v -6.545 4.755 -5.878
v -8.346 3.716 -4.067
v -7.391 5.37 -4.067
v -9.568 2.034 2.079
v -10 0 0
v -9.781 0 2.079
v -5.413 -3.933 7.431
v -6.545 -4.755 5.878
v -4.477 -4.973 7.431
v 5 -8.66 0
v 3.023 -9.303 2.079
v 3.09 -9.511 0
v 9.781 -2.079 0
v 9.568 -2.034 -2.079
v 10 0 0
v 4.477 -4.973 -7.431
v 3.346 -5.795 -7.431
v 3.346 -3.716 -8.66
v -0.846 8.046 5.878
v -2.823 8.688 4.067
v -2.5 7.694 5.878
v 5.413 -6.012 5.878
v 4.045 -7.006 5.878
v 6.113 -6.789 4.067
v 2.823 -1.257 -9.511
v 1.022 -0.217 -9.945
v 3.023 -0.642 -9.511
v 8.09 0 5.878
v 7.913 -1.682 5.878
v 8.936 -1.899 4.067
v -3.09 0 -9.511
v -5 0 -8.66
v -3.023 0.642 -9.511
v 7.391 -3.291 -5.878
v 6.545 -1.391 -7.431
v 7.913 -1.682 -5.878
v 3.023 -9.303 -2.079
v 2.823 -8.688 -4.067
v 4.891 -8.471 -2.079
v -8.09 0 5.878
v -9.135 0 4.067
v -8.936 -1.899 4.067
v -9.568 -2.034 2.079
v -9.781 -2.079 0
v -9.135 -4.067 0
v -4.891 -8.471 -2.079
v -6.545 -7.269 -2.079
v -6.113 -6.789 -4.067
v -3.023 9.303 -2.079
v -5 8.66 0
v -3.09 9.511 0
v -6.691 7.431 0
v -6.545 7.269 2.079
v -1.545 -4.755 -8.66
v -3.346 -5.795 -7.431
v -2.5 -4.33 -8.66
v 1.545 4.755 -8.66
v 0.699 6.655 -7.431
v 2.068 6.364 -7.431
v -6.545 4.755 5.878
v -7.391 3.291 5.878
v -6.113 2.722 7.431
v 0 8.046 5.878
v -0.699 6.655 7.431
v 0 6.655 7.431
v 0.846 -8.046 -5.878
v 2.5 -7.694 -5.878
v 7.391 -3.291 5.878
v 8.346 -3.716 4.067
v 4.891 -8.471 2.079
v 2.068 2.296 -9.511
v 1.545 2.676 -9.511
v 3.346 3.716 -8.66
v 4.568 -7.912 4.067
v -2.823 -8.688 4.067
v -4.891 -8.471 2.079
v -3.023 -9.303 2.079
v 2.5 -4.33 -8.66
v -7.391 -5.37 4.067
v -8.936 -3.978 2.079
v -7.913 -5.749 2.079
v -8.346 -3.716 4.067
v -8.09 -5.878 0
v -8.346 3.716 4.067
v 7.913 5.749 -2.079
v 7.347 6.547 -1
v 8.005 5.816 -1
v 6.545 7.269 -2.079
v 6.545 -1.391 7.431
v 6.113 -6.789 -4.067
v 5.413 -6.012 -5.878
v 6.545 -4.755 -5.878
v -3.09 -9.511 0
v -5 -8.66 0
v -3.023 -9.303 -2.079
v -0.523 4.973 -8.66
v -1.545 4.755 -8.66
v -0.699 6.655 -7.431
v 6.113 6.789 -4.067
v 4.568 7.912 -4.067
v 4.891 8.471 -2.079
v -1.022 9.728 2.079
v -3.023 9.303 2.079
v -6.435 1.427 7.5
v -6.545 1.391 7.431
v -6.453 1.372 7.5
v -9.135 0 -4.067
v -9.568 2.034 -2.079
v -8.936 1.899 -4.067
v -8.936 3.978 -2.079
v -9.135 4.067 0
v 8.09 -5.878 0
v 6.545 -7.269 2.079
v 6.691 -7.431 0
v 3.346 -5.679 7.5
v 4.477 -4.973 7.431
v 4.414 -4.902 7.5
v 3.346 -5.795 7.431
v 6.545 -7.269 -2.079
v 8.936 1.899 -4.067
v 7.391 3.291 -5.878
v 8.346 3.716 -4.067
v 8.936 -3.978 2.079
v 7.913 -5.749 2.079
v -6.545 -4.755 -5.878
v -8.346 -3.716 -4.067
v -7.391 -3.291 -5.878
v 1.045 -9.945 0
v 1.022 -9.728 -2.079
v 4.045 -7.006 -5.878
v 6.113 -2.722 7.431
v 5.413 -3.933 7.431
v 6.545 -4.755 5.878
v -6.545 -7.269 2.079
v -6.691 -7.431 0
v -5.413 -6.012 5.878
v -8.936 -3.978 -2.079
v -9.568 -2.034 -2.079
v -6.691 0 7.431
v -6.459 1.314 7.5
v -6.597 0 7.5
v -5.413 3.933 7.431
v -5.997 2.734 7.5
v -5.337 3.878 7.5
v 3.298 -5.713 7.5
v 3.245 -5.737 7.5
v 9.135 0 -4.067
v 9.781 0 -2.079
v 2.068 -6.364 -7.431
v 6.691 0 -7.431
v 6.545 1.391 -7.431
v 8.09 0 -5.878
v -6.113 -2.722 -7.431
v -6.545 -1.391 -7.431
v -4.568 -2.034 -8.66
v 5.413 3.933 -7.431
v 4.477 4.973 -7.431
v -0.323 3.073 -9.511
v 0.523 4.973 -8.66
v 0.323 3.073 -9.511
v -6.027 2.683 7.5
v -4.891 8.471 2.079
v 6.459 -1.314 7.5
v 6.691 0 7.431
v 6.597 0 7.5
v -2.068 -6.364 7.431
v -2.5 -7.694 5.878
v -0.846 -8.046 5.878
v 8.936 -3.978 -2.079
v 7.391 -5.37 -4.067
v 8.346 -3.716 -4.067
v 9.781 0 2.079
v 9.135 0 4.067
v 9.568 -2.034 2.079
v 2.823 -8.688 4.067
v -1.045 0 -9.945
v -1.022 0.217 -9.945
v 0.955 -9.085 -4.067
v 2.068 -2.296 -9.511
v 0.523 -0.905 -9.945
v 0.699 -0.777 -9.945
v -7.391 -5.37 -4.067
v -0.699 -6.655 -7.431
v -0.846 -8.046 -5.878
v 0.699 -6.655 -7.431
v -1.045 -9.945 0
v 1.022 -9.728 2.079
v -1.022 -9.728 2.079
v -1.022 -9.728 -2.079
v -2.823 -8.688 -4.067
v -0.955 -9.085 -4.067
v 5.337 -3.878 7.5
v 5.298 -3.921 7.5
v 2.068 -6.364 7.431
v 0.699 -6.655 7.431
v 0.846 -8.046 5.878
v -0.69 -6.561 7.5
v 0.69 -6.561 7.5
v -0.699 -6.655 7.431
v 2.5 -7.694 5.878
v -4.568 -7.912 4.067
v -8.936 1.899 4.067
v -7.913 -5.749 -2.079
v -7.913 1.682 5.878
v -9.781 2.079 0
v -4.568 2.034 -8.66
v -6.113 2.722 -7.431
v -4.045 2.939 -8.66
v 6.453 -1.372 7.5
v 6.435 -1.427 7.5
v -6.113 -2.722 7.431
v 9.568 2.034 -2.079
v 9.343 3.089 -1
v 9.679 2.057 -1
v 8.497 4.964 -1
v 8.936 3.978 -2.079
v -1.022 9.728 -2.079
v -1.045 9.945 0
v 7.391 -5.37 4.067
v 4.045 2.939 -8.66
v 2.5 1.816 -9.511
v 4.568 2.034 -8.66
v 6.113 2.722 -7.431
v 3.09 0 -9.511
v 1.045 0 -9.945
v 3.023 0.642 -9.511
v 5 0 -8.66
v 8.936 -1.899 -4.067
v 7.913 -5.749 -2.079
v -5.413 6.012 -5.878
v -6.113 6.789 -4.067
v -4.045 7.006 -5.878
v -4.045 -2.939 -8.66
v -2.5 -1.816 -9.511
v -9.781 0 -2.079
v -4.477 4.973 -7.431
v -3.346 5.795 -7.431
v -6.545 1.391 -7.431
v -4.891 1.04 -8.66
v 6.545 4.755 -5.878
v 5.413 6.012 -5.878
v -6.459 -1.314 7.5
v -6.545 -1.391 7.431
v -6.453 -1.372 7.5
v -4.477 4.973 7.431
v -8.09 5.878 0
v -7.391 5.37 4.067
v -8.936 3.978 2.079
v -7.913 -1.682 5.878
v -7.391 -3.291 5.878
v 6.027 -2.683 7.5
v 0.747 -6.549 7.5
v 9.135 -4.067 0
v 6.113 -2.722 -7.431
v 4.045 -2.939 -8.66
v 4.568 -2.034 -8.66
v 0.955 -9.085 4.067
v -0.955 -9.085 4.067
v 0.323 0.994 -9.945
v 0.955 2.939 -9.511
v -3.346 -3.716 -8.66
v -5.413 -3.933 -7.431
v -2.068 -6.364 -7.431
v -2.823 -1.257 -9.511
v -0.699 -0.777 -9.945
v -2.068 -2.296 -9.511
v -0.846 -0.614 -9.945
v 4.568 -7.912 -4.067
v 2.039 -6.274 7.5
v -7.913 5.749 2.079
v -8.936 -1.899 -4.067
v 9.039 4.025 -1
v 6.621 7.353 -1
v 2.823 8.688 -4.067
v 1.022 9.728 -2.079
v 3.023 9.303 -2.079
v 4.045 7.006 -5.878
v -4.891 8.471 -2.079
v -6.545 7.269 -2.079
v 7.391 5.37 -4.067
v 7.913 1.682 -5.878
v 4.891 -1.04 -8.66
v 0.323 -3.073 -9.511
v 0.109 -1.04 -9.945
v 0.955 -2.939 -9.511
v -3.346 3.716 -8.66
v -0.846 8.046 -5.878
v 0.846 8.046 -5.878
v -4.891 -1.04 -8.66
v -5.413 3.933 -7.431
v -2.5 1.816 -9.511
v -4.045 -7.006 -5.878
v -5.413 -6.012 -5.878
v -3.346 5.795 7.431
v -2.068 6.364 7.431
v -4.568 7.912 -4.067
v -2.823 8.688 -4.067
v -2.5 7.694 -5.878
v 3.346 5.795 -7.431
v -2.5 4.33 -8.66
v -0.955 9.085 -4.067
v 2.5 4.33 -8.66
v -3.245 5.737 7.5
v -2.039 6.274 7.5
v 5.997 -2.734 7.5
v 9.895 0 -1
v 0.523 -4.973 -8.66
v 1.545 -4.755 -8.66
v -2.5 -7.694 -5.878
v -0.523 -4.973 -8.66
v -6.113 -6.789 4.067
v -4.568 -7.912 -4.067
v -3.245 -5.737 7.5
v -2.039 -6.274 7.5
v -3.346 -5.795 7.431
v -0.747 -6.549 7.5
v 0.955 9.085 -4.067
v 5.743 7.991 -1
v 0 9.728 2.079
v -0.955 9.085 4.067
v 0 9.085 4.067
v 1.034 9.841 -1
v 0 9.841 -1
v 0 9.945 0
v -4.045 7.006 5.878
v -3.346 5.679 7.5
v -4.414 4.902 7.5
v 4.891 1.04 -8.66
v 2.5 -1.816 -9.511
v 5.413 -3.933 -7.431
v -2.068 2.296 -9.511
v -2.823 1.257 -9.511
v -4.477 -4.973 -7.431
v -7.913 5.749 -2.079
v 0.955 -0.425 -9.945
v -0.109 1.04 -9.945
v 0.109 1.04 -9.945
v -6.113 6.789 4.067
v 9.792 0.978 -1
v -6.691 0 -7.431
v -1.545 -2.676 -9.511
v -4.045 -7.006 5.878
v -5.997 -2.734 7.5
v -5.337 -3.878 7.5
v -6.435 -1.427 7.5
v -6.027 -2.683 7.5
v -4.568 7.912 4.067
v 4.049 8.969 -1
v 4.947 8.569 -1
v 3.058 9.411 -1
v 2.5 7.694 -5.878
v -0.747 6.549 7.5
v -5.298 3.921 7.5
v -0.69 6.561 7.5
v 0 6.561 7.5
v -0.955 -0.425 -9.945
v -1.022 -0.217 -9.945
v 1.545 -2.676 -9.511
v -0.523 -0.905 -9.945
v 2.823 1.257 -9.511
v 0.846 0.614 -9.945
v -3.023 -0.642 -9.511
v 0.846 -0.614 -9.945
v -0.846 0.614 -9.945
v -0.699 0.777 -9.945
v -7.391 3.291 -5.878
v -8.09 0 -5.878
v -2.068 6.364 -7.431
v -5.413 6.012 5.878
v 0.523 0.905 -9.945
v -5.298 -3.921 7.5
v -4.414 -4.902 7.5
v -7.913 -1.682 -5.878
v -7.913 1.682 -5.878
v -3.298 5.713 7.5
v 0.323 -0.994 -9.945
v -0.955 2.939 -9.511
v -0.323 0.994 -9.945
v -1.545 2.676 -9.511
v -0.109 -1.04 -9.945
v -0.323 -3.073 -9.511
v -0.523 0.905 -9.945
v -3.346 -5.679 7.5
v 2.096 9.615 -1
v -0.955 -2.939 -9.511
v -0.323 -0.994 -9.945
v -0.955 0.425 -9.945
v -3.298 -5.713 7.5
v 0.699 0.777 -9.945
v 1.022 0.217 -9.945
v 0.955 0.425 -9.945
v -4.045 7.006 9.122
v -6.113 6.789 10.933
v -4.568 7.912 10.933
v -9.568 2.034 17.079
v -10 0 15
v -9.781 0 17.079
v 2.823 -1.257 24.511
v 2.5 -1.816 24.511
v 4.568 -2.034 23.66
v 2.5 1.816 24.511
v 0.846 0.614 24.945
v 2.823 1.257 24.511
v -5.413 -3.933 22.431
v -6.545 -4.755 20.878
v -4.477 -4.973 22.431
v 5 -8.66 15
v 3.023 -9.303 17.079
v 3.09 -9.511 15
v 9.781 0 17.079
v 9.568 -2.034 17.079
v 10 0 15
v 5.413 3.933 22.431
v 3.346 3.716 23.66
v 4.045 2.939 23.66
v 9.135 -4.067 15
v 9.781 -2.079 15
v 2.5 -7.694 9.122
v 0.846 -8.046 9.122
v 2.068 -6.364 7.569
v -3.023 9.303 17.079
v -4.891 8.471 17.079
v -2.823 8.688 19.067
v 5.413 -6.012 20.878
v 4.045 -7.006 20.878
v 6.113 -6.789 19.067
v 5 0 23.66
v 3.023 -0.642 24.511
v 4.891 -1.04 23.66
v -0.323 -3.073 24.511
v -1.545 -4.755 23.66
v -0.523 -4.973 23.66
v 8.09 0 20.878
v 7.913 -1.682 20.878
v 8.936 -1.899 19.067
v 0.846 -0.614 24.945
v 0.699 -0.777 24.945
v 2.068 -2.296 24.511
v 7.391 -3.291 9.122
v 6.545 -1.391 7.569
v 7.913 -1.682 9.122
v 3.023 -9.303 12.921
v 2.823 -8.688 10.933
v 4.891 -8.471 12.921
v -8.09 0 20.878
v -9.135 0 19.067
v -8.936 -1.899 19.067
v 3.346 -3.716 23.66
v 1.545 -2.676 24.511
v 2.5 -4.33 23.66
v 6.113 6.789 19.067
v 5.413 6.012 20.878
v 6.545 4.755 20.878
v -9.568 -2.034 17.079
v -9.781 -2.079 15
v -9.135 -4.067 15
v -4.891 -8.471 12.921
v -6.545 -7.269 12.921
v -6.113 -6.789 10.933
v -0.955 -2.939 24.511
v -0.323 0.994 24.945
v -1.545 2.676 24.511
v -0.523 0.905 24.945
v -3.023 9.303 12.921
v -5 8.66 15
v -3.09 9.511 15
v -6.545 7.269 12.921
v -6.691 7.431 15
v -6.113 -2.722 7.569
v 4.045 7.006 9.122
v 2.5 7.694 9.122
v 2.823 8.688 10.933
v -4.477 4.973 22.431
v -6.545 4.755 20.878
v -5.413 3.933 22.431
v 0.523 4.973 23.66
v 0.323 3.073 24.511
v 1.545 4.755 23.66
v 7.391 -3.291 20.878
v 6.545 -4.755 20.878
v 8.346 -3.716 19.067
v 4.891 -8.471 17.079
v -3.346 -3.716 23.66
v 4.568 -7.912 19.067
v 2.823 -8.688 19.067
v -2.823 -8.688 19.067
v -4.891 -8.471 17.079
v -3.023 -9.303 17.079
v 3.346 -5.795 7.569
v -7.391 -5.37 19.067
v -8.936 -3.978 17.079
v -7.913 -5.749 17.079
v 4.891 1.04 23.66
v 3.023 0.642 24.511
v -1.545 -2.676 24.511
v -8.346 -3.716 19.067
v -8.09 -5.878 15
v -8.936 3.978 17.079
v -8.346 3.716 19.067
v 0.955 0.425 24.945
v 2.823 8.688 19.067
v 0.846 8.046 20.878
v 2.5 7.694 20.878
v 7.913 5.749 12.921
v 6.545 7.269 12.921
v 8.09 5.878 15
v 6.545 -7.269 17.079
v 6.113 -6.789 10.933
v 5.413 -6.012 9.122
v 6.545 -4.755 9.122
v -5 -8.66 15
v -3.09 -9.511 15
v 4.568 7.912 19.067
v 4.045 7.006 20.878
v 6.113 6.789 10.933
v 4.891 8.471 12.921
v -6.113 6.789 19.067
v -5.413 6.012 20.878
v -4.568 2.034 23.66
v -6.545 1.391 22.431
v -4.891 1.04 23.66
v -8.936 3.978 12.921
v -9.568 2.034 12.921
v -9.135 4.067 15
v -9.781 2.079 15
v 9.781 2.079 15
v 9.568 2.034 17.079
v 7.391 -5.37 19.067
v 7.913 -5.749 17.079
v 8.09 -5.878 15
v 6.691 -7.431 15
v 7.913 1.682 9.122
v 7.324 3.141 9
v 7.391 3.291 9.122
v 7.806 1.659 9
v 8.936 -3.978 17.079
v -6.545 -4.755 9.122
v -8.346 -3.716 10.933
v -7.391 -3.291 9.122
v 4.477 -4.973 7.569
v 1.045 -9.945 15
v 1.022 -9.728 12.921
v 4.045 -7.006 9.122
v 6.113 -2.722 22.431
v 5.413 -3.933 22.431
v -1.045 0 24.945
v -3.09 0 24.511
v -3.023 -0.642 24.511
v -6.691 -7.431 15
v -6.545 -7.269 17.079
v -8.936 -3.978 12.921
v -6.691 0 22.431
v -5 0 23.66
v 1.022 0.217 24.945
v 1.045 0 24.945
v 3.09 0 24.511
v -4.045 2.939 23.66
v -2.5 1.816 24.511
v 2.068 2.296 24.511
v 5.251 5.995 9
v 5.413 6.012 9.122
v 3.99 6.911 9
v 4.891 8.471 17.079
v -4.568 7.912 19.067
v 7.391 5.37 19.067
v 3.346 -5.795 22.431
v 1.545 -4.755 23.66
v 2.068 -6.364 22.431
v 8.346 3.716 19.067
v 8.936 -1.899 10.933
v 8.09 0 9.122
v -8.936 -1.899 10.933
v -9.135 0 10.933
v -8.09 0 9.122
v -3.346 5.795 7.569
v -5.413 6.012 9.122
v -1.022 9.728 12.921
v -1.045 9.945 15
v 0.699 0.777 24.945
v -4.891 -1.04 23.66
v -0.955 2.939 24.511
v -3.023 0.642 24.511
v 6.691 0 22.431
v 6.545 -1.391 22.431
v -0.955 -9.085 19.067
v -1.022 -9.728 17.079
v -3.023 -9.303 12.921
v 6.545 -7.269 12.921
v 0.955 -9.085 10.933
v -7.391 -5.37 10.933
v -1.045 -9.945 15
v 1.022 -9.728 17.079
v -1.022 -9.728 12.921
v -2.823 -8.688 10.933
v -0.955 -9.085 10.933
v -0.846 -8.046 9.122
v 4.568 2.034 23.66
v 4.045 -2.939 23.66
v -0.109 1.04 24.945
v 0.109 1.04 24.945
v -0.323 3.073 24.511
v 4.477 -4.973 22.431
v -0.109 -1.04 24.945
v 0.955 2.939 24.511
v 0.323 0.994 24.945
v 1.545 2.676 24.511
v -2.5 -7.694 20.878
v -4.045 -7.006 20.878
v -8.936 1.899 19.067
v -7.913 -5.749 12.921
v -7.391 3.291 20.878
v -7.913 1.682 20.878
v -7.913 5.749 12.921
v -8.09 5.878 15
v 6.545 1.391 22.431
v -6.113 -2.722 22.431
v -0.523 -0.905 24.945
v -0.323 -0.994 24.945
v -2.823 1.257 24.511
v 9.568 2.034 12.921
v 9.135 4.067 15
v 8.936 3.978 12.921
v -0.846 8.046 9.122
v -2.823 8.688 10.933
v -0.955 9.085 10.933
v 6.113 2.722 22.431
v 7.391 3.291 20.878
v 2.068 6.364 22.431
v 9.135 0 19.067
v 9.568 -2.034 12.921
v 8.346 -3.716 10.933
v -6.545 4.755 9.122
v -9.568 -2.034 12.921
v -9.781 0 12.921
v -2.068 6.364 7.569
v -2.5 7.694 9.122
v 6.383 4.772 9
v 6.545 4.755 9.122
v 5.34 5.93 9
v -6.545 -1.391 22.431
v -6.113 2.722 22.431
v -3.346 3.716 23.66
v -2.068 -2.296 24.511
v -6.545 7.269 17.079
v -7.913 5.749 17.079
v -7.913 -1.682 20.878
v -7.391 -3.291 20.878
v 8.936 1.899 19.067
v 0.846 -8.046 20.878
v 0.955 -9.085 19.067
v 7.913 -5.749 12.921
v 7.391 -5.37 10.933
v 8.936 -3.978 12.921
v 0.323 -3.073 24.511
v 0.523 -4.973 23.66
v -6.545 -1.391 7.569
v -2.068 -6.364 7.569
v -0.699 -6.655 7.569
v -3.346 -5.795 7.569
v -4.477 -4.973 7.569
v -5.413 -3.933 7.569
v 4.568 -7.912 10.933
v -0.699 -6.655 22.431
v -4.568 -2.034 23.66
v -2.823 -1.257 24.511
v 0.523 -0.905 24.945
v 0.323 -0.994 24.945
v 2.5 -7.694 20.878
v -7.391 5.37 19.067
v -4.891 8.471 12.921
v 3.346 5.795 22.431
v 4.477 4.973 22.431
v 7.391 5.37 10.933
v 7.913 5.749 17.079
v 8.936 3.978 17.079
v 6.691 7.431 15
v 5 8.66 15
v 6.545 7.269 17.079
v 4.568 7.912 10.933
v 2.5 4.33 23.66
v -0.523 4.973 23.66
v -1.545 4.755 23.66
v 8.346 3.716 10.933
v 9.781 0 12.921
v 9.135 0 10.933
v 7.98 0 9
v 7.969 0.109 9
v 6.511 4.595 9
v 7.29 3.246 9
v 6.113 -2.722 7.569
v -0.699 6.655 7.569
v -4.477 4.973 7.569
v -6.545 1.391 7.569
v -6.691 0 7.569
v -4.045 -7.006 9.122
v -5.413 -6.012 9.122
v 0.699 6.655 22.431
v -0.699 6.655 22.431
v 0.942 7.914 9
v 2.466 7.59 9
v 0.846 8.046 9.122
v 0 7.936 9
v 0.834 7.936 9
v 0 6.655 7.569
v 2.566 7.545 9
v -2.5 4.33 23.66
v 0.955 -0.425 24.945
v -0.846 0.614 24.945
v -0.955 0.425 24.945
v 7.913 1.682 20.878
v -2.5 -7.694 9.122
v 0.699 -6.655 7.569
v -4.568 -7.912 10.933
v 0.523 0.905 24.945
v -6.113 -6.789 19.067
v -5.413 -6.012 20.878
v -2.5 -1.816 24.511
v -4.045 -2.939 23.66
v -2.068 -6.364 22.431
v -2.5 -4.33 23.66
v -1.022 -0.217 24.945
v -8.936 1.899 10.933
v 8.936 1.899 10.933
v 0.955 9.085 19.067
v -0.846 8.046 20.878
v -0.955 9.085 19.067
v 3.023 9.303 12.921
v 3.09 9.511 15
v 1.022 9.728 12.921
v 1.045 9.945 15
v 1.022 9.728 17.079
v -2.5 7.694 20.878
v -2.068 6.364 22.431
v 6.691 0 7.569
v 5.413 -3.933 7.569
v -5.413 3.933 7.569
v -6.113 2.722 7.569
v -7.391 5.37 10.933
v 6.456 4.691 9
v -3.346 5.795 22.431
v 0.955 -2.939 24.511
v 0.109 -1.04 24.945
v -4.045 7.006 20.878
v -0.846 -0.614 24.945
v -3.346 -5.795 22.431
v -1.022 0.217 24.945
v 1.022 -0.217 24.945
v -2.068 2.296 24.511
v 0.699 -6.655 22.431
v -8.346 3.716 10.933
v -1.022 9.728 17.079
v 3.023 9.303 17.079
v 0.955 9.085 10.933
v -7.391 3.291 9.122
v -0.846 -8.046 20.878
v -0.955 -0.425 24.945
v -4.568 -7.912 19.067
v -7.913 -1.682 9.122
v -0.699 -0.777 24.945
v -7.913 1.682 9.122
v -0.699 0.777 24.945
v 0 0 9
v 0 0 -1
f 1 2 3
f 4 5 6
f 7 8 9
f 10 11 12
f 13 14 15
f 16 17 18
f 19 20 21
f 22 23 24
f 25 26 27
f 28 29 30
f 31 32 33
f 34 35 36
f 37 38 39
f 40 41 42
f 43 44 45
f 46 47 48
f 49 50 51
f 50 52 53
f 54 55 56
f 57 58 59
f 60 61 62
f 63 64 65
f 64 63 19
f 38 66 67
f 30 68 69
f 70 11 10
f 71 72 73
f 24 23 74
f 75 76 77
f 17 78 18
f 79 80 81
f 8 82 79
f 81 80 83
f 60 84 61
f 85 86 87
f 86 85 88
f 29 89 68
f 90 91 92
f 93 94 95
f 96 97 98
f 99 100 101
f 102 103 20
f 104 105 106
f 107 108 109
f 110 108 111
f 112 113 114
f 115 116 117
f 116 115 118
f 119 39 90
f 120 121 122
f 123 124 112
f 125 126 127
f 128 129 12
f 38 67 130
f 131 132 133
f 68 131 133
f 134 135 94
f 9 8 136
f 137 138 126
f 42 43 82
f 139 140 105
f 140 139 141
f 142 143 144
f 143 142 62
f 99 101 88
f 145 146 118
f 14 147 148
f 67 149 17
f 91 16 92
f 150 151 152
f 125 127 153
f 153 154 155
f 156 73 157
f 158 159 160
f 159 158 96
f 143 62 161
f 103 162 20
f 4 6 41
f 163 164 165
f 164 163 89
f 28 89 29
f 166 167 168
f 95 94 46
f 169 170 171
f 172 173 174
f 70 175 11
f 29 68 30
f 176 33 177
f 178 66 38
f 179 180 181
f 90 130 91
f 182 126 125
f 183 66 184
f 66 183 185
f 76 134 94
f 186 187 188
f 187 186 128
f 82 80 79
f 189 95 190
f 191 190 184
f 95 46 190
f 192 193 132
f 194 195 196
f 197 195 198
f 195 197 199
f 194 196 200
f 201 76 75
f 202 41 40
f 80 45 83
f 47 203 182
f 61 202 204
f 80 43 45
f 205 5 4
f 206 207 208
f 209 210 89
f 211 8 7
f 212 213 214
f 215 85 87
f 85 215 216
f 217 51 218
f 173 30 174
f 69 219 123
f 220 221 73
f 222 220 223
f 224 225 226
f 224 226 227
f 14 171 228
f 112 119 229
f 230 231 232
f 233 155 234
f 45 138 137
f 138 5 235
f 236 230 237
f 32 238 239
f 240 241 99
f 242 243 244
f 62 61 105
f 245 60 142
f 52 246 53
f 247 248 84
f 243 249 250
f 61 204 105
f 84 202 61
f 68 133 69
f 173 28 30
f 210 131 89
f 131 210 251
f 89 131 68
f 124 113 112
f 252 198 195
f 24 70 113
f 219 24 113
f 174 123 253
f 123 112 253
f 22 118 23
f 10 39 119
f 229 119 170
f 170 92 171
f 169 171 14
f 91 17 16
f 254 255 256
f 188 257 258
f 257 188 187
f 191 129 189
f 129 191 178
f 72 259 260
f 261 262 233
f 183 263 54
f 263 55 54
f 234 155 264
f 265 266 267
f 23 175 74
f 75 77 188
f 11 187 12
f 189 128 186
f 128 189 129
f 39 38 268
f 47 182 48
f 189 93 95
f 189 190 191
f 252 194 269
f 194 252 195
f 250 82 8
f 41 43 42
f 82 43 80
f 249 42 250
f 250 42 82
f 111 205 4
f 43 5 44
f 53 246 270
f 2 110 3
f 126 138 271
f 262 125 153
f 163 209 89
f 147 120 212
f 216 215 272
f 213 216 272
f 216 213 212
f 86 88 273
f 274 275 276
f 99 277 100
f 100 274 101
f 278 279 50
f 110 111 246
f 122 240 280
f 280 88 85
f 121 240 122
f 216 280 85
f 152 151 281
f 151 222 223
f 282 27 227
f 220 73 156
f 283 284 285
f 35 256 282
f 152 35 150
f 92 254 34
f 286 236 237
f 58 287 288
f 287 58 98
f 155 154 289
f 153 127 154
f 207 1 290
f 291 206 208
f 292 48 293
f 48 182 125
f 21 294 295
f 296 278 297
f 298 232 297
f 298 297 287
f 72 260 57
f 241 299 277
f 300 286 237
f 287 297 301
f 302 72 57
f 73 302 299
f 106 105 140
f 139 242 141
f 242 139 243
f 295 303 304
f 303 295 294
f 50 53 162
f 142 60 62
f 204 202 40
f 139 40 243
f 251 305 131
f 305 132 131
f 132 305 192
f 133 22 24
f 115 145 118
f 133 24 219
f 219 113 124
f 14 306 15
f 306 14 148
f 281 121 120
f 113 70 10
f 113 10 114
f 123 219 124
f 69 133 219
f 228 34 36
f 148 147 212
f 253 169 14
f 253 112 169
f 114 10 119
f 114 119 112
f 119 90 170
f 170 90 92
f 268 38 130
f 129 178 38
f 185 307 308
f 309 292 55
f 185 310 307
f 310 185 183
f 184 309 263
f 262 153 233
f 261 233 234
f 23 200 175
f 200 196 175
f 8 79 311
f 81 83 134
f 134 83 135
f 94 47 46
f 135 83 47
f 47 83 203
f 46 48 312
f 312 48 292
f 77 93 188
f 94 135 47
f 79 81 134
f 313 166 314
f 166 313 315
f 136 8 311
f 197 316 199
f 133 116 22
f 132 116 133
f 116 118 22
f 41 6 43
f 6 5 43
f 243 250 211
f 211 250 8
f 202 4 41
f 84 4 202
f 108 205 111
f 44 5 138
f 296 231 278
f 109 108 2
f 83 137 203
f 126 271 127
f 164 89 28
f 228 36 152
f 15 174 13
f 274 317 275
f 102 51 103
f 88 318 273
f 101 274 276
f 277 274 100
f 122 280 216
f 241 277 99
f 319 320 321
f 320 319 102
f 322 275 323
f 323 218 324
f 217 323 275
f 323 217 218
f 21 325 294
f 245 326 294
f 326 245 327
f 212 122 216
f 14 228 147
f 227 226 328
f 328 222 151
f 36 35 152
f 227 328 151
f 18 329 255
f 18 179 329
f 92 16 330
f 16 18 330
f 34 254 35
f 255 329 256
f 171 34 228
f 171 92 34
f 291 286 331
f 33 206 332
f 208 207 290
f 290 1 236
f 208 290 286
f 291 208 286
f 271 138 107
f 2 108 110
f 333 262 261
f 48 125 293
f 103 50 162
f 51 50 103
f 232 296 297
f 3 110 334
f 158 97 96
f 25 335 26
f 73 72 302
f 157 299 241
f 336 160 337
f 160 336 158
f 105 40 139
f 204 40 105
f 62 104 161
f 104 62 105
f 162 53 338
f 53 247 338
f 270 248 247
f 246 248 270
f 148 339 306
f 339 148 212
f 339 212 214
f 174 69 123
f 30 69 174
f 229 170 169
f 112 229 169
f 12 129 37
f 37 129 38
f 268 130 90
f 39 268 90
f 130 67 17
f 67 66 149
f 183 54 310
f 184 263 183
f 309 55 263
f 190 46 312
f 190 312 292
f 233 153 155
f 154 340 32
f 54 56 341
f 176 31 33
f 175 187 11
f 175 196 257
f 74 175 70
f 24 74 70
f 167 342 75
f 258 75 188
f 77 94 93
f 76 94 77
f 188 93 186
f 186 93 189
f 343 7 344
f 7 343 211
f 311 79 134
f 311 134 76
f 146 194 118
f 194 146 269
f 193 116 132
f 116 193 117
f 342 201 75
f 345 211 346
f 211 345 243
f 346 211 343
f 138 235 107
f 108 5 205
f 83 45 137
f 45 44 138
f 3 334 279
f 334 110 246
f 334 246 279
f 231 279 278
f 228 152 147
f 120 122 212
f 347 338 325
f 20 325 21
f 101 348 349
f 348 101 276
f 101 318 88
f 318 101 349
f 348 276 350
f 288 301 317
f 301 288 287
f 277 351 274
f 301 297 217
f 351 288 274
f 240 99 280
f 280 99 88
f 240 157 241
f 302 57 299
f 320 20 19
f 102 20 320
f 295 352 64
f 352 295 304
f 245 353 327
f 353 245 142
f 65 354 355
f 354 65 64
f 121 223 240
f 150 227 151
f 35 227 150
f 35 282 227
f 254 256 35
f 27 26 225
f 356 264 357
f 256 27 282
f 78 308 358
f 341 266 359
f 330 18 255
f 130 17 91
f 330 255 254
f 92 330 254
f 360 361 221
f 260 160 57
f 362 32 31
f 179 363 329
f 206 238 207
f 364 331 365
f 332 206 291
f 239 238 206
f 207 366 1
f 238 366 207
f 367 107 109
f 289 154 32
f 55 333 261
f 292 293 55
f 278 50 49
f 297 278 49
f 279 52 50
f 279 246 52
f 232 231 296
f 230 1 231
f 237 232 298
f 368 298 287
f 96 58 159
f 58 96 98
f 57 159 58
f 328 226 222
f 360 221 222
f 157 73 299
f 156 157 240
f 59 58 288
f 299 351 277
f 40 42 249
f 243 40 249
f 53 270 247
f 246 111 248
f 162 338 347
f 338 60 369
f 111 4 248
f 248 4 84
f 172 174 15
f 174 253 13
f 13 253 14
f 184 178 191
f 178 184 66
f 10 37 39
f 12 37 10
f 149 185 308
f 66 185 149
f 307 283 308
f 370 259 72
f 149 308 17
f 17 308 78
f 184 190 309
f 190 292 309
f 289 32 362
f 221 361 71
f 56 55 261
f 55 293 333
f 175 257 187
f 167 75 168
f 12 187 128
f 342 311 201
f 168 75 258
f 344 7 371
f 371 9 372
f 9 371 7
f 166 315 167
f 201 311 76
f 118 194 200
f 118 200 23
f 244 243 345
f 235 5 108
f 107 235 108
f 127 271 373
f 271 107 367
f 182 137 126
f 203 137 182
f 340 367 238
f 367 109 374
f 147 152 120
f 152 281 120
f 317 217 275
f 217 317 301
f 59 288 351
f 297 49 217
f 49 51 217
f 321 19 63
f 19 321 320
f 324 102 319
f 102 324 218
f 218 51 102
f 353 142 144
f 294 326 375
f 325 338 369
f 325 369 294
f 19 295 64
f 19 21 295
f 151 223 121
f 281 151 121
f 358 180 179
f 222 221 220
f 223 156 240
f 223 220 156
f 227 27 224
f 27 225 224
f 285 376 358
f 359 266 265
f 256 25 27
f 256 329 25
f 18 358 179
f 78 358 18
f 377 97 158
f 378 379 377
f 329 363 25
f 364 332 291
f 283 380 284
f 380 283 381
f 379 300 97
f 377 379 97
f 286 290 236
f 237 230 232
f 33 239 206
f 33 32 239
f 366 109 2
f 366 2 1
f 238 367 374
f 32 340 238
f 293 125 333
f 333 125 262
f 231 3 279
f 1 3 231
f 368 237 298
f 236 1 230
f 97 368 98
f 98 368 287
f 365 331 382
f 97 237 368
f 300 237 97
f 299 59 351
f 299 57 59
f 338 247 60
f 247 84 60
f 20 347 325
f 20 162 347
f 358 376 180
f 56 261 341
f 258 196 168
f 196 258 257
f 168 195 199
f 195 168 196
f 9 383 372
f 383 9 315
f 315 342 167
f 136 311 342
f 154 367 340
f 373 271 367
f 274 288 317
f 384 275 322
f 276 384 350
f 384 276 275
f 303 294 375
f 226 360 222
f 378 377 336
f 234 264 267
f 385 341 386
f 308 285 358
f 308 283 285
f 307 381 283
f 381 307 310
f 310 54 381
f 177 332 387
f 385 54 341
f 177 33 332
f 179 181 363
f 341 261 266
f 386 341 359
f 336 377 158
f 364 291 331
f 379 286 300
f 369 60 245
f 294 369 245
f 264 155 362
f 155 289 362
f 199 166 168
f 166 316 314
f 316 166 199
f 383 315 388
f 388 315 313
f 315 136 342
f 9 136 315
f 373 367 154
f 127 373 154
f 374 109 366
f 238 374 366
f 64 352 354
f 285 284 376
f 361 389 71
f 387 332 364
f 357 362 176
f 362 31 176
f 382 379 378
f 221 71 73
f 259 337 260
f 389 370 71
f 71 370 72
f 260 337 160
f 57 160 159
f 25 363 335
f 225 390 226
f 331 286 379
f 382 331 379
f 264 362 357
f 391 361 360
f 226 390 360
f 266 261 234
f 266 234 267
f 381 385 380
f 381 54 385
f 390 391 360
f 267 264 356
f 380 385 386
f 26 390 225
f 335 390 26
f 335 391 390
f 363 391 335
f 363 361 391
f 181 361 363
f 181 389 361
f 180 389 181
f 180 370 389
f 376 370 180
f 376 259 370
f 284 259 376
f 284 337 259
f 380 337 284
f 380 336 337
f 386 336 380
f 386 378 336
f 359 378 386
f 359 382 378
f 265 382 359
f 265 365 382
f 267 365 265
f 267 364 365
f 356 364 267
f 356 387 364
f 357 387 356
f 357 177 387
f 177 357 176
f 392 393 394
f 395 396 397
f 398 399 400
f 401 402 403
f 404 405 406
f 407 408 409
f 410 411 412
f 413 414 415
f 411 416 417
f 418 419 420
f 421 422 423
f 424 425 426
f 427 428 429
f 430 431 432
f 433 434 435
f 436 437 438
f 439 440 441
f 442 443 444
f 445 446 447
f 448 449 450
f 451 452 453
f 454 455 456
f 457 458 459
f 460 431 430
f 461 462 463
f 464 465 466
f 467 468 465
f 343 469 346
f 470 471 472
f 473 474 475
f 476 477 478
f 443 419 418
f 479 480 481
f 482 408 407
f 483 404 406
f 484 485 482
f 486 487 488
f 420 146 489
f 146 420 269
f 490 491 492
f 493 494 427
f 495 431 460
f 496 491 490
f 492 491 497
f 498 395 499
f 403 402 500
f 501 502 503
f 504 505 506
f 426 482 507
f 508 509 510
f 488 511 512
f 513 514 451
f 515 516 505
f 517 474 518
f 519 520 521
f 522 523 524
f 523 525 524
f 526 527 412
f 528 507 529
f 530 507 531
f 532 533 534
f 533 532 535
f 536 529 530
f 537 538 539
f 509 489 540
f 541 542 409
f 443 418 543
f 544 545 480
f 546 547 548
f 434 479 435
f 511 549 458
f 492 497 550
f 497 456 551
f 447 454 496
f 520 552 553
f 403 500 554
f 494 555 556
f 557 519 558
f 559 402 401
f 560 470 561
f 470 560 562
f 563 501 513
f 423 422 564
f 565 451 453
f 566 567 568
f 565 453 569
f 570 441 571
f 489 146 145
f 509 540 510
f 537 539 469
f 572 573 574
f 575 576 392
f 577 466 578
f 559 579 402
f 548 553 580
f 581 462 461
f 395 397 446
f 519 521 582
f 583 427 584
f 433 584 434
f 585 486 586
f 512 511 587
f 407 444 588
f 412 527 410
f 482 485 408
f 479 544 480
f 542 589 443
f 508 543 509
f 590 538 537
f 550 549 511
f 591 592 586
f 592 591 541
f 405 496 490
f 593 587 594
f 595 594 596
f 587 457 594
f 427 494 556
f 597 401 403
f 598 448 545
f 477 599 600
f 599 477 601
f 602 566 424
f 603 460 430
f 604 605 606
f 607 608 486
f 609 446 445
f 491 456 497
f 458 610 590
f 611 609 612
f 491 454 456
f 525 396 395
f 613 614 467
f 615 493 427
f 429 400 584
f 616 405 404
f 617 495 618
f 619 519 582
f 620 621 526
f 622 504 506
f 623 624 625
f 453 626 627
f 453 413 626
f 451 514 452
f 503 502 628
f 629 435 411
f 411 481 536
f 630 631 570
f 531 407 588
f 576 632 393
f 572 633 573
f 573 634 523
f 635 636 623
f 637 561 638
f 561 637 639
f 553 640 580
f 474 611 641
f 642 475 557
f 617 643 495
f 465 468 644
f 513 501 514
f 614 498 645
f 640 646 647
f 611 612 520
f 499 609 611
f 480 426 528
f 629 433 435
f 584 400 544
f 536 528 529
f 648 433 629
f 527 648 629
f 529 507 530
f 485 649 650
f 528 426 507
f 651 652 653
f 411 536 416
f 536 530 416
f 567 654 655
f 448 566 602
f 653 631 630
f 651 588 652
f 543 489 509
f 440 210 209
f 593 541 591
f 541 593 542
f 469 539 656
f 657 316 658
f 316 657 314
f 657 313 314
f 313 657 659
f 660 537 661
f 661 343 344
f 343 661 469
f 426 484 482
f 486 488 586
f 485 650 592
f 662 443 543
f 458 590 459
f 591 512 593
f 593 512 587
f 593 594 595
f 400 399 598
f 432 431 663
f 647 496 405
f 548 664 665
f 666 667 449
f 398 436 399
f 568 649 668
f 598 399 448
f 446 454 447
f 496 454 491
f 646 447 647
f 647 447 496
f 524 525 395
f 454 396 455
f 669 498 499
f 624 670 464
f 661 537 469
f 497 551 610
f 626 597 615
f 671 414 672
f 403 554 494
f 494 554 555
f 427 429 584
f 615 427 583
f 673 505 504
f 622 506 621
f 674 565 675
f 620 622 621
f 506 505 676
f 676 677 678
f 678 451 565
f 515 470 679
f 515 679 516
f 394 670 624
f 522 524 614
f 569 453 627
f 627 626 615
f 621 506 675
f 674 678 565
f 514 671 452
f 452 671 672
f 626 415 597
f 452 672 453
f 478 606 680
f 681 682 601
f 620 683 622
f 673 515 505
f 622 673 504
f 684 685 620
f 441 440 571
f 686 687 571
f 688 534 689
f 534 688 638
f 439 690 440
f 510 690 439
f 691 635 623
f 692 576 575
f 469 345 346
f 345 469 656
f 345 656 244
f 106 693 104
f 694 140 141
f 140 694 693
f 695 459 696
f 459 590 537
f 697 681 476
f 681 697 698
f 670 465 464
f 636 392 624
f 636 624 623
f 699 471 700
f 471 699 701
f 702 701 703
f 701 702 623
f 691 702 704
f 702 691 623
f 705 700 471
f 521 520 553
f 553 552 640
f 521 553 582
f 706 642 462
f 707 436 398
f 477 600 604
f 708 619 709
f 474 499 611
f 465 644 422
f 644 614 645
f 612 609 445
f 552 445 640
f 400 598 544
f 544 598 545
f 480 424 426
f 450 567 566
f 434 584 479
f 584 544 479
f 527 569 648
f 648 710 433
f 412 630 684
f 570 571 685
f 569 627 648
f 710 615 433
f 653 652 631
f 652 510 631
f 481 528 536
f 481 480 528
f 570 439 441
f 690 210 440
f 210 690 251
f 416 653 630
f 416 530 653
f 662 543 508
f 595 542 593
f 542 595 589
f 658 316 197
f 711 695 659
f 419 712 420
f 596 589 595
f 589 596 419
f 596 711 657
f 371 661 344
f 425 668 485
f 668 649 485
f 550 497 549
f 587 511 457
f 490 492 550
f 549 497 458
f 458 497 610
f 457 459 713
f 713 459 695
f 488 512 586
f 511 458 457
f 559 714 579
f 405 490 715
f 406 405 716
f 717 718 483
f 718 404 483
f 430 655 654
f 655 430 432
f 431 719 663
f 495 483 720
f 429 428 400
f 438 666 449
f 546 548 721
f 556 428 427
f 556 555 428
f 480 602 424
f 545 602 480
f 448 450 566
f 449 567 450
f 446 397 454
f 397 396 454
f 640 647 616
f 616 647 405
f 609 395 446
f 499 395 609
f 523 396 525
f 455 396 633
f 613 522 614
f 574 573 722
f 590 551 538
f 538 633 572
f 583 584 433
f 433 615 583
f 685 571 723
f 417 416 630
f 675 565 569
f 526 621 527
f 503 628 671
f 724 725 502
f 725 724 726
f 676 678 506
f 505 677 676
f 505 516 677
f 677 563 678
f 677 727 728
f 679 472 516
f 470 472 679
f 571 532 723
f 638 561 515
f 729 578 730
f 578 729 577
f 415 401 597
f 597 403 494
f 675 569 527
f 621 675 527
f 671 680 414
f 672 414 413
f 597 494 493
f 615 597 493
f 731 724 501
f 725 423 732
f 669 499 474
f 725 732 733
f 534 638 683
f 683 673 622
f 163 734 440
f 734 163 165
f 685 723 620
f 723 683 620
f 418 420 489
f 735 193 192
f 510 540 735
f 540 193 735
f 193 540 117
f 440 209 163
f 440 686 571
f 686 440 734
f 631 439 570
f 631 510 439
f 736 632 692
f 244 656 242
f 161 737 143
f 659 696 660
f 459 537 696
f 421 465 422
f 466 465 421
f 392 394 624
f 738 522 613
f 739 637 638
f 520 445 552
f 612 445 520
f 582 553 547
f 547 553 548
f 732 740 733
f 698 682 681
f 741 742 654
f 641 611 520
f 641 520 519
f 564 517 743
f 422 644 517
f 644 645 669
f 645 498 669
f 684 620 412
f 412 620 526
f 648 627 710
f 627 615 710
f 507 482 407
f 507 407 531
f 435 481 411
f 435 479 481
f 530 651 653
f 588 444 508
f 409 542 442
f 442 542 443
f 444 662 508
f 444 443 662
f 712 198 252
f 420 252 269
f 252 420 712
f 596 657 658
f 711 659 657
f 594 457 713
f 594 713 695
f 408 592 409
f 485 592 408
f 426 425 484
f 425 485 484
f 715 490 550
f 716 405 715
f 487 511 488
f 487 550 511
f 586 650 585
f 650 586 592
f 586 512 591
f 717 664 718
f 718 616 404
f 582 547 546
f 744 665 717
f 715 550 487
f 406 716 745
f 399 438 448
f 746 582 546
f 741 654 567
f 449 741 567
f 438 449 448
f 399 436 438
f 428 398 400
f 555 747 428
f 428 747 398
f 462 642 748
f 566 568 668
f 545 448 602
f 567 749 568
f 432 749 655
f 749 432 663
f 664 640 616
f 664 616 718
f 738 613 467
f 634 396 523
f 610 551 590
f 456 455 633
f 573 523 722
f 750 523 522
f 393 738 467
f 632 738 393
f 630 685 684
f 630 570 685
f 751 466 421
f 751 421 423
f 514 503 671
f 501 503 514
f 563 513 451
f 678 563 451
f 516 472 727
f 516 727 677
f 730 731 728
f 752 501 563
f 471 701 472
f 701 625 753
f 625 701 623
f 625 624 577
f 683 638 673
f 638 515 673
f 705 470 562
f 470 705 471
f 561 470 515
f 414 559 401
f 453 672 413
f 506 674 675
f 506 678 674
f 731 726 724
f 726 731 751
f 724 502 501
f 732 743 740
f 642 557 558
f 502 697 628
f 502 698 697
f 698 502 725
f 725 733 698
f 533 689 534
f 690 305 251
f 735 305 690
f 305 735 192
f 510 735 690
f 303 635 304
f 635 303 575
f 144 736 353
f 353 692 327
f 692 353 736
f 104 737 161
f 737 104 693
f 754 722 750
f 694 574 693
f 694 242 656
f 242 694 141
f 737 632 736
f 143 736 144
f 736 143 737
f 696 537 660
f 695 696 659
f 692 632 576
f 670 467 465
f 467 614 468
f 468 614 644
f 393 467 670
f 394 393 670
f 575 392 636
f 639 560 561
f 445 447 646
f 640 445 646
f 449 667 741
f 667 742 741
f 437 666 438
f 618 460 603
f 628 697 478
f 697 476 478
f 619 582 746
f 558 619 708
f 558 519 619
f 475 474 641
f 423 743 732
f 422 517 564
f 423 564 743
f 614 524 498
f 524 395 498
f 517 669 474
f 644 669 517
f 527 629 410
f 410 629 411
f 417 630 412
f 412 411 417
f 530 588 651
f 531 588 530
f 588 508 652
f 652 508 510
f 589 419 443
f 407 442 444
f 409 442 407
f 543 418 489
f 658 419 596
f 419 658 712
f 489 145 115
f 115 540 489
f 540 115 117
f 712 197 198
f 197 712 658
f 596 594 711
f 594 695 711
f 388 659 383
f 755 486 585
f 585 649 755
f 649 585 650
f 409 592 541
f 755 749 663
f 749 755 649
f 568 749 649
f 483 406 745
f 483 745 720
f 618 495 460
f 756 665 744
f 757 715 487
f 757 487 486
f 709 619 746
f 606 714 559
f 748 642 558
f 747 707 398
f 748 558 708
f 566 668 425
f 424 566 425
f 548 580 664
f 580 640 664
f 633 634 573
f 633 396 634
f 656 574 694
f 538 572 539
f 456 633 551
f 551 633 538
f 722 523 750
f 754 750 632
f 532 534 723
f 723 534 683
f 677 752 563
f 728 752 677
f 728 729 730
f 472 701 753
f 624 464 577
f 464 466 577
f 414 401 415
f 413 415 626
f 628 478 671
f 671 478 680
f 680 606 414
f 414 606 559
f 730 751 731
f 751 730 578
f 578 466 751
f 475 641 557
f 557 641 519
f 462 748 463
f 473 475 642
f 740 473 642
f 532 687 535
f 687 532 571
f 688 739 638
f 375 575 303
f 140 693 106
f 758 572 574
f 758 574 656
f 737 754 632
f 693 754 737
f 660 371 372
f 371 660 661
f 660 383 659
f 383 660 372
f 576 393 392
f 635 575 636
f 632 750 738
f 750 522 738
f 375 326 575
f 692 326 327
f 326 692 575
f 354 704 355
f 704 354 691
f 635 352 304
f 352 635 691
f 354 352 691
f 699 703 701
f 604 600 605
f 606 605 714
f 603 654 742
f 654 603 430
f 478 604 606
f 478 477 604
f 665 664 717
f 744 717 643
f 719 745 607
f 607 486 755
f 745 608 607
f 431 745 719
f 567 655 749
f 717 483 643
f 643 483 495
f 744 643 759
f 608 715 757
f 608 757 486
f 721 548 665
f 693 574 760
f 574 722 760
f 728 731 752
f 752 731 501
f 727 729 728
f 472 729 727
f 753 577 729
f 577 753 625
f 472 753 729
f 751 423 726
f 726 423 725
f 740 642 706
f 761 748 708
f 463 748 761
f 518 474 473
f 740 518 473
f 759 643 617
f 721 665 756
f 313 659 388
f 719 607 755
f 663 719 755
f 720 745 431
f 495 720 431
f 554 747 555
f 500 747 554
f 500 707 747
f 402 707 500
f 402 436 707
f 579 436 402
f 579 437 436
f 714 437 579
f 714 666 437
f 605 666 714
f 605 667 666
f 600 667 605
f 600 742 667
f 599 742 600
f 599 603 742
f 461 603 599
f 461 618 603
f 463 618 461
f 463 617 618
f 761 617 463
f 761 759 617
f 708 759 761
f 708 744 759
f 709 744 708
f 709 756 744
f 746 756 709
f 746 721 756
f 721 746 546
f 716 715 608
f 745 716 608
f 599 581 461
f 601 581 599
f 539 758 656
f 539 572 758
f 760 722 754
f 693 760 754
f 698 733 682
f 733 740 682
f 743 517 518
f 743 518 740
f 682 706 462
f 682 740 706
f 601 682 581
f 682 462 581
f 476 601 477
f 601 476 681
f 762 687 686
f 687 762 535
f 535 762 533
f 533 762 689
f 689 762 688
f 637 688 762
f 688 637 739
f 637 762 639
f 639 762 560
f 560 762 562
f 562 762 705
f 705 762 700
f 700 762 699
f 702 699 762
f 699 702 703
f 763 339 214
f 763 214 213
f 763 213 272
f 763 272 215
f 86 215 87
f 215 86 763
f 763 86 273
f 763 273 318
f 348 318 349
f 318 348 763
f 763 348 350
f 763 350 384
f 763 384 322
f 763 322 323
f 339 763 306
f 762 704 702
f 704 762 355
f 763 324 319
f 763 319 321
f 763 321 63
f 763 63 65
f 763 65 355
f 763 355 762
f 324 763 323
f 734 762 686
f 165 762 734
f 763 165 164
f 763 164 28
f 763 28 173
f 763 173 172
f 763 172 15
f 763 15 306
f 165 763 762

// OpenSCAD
// Light Source Parameters
light_radius = 20;
light_height = 50;
light_depth = 10;
bulb_radius = 10;
bulb_height = 20;
bulb_depth = 8;

// Create the bulb
module bulb() {
  sphere(bulb_radius);
}

// Create the light source
difference() {
  union() {
    translate([0, 0, 0]) {
      bulb();
      translate([0, 0, light_height/2 - bulb_height/2]) {
        bulb();
      }
    }
  }
  translate([0, 0, -1]) {
    cube([light_radius * 2, light_radius * 2, light_depth]);
  }
}
